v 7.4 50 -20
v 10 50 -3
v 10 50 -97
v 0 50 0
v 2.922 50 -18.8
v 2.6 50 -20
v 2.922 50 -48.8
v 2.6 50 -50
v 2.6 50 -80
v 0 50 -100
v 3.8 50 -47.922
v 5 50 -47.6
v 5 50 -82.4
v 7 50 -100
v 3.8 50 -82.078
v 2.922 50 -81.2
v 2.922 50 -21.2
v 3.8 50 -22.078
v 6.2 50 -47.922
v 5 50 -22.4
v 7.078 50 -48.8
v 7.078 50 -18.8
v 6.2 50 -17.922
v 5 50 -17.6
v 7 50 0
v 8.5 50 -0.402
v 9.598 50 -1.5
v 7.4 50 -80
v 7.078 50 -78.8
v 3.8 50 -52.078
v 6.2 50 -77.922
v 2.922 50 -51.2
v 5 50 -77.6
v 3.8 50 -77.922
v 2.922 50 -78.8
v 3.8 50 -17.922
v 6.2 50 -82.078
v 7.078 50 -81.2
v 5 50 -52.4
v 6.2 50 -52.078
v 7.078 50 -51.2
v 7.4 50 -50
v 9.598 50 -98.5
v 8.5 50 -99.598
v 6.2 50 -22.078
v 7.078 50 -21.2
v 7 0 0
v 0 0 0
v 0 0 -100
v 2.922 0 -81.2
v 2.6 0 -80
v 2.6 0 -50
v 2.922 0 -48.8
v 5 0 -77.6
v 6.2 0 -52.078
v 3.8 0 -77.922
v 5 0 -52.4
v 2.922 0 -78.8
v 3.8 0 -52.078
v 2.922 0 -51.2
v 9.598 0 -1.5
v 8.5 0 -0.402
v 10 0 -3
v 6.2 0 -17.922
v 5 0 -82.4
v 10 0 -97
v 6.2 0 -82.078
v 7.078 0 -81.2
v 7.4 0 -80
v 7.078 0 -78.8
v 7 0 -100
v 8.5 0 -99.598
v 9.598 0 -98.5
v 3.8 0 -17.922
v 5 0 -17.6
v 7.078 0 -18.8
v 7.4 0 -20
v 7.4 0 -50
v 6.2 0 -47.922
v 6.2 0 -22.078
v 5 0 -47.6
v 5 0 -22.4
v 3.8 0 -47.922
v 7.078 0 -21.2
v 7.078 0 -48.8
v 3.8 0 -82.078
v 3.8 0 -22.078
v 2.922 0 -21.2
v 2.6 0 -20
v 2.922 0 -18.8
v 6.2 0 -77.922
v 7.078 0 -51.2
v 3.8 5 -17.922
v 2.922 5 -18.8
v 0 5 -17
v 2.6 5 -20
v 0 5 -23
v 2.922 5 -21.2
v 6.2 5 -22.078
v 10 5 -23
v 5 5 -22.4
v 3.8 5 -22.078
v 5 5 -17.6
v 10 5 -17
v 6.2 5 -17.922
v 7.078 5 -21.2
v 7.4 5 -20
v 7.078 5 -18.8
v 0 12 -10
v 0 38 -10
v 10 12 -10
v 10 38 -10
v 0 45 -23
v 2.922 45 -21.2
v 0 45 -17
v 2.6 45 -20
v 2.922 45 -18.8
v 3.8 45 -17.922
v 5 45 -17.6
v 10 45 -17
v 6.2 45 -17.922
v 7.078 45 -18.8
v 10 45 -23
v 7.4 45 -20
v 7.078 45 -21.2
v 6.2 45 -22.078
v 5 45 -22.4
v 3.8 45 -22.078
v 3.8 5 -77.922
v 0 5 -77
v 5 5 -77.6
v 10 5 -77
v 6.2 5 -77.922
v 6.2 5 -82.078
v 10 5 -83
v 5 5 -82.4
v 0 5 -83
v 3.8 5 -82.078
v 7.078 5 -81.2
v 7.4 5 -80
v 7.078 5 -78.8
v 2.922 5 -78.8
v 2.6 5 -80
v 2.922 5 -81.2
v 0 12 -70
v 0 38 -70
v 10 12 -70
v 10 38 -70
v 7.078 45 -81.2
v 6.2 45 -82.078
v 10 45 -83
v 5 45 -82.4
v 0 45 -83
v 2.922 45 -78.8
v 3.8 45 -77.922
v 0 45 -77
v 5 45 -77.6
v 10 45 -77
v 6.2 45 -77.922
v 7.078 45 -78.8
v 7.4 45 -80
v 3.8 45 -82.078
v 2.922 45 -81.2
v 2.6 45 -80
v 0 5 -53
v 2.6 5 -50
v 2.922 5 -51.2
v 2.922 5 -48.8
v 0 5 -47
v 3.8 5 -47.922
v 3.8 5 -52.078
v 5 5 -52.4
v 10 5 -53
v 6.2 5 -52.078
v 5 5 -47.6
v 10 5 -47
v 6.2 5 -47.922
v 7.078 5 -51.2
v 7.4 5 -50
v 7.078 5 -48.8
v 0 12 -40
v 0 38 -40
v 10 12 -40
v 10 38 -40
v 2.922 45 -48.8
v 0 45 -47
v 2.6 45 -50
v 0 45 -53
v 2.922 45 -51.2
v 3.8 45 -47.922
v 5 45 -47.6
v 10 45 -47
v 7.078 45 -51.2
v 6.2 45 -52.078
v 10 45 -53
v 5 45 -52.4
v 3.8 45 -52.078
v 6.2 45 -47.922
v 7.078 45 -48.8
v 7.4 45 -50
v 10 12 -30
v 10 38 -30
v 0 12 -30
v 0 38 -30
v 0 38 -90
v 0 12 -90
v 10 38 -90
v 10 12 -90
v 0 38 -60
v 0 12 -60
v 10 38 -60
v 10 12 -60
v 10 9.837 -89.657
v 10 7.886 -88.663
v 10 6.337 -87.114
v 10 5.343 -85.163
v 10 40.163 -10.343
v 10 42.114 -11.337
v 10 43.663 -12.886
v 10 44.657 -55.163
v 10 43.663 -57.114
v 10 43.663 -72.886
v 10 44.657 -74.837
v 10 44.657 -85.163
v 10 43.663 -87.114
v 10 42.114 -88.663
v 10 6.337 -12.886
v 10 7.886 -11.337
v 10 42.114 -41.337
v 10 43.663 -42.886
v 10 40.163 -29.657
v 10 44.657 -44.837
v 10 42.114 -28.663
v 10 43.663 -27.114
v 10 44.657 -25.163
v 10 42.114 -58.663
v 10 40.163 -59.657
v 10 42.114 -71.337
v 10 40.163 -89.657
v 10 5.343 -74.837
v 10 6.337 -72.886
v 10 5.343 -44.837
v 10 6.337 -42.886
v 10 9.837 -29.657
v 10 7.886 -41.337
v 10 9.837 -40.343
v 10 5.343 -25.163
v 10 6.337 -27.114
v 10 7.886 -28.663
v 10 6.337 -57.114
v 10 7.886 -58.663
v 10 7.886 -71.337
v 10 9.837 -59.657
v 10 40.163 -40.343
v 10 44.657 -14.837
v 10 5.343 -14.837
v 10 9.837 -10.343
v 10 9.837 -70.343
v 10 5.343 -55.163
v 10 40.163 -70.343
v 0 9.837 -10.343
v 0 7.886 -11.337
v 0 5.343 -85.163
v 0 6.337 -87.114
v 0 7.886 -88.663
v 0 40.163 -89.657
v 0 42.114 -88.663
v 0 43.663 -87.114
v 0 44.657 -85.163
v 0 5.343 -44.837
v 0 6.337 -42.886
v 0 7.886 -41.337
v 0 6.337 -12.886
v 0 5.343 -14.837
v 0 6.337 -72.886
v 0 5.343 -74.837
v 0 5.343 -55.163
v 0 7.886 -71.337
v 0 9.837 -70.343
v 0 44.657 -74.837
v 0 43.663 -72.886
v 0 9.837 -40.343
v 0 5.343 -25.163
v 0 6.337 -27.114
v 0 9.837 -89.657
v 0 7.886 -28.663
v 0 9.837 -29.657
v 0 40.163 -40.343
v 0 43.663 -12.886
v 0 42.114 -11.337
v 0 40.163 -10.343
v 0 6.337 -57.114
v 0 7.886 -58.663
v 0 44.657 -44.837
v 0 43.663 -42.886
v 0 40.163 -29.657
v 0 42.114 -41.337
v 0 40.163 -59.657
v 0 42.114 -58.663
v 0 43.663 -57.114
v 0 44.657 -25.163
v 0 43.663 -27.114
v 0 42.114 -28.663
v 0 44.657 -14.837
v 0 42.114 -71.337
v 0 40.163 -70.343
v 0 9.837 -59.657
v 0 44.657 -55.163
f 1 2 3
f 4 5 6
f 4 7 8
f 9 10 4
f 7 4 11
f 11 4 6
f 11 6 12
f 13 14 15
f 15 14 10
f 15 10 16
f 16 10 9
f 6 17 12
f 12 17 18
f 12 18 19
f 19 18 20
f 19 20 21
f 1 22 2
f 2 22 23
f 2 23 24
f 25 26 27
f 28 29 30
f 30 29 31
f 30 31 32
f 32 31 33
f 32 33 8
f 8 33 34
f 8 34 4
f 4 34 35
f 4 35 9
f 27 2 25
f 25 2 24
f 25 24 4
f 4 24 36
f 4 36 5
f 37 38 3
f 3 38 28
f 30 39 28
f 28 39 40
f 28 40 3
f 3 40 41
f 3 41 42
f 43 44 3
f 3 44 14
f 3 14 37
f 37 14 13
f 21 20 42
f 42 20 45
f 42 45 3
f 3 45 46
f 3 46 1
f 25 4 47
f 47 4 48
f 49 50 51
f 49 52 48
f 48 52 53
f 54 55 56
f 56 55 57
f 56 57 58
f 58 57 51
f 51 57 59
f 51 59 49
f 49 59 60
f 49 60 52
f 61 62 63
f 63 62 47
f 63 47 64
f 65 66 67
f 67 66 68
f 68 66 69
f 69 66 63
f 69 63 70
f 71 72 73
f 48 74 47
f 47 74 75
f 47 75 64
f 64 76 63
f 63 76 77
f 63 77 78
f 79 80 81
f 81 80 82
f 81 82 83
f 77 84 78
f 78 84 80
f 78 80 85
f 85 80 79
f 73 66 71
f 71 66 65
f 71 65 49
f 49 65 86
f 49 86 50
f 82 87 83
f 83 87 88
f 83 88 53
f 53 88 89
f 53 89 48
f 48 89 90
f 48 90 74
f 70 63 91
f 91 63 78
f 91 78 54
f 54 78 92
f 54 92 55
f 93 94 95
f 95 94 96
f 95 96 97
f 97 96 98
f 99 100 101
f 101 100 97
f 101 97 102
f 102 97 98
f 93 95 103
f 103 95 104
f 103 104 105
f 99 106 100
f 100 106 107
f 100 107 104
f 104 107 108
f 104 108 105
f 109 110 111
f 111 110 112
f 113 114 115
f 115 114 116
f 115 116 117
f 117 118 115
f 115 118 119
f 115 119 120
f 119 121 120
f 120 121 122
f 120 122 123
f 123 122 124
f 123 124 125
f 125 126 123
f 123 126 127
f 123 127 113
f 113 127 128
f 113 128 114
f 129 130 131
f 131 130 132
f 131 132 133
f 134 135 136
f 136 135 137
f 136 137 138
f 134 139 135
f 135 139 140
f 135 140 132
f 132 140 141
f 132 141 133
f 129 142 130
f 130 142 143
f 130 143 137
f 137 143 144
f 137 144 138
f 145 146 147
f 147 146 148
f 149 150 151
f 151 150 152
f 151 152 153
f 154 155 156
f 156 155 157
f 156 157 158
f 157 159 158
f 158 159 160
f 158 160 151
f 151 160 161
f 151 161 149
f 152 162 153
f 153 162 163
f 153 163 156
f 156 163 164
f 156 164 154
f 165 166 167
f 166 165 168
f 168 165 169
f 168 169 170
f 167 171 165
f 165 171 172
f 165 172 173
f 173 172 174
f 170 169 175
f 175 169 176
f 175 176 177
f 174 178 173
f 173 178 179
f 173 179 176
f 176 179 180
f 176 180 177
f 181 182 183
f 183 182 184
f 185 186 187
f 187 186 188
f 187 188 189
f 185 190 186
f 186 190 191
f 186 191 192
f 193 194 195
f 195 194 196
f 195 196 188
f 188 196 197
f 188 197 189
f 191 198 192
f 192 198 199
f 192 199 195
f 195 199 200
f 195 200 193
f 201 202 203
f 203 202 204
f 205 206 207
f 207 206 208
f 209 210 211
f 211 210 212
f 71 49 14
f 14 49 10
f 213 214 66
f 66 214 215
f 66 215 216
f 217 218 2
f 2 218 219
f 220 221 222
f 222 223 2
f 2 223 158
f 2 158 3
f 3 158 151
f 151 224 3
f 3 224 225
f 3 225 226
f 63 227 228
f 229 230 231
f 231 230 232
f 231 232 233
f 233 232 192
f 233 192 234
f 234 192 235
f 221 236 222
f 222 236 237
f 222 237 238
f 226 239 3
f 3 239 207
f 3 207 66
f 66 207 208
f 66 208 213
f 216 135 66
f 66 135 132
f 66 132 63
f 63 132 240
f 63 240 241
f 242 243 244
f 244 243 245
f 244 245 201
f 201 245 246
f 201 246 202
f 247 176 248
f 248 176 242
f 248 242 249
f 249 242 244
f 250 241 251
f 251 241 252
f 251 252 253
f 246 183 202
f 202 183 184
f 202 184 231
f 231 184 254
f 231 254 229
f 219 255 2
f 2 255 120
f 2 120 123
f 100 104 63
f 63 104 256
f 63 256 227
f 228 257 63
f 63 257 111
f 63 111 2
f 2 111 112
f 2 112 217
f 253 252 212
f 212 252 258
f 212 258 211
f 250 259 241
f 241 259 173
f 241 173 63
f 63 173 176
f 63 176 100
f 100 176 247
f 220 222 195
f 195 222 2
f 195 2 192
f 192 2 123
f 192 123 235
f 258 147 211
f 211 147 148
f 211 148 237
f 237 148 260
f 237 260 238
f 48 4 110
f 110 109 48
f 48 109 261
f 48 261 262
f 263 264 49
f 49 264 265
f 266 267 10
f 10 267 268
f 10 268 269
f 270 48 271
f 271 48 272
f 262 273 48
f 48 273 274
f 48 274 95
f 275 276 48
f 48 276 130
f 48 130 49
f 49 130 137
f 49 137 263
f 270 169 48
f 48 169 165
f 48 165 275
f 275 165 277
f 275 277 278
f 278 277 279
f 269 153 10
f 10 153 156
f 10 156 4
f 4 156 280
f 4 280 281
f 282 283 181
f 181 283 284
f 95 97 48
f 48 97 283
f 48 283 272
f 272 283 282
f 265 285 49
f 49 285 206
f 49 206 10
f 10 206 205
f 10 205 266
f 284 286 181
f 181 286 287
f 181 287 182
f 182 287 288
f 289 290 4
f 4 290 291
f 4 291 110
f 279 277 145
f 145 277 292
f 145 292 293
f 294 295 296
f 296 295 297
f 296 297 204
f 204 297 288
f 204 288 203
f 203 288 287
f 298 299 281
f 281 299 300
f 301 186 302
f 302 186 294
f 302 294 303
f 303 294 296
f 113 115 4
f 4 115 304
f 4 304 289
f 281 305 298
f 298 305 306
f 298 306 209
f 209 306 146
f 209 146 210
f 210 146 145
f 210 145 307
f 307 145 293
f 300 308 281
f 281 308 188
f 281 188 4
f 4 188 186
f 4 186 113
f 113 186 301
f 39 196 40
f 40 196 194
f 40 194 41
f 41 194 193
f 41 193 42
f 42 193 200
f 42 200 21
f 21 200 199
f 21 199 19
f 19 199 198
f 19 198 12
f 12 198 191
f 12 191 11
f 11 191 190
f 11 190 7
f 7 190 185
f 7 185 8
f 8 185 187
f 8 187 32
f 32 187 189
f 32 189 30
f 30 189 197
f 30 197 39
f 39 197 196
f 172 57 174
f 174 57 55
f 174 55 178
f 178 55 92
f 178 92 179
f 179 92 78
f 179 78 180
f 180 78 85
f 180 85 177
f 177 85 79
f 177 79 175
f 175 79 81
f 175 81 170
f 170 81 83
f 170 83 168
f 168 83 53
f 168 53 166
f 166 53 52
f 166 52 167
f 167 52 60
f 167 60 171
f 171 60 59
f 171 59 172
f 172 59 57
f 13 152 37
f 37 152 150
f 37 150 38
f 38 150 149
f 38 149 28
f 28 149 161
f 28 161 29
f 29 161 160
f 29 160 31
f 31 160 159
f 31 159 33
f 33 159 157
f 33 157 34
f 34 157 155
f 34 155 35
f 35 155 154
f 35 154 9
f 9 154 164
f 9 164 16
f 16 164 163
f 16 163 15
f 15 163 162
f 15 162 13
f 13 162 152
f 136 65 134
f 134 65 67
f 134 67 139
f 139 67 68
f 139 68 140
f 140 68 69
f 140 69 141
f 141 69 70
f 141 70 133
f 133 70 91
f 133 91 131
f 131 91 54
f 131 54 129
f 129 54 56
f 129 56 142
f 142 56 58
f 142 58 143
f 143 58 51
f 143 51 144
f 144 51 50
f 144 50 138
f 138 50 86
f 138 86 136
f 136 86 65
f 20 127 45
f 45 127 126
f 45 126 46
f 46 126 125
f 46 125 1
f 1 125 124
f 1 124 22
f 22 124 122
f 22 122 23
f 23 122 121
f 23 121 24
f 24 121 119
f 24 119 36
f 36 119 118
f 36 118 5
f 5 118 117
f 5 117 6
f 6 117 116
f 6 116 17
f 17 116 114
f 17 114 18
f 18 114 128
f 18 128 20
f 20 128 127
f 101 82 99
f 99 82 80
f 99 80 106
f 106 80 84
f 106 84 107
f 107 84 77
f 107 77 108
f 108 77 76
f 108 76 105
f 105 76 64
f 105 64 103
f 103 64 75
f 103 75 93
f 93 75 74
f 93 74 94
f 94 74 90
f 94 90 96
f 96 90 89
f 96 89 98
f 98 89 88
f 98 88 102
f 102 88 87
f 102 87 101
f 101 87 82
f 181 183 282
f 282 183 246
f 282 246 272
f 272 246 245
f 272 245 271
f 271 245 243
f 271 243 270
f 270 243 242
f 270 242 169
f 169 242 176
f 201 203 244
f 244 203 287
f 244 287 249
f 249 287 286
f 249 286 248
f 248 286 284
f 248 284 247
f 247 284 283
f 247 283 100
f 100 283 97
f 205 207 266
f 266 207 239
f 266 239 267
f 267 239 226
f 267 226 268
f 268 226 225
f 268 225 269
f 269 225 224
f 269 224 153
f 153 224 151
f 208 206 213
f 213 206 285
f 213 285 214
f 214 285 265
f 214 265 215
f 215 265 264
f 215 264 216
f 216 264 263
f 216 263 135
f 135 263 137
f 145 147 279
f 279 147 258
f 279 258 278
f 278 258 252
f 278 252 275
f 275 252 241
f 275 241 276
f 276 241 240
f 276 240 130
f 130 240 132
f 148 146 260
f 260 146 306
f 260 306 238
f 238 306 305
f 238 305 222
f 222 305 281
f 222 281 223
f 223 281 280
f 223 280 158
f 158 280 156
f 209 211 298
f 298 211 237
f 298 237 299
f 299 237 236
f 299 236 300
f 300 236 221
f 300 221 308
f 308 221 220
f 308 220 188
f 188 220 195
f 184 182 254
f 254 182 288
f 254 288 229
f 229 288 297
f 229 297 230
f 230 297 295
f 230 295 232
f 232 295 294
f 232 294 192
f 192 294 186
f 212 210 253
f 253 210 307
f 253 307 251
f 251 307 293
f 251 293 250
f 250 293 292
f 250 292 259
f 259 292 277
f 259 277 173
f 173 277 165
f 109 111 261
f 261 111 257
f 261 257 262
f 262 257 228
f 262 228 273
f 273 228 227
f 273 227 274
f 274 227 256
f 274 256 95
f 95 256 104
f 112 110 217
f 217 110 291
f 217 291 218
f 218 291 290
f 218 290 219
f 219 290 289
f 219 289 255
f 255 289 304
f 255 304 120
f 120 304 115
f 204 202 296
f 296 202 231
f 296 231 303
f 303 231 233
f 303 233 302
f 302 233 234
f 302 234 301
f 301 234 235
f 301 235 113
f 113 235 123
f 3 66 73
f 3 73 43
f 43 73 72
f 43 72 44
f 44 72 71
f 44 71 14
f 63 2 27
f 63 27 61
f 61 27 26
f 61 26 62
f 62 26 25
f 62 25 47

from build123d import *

# Parameters (mm, degrees)
ESQUISSE1_W             = 100
ESQUISSE1_H             = 50
ESQUISSE1_W_2           = 80
ESQUISSE1_H_2           = 40
ESQUISSE1_W_3           = 10
BOSS_EXTRU_1_DEPTH      = 10
ESQUISSE2_R             = 2.4
ENL_V_MAT_EXTRU_1_DEPTH = 113.249721603
CONG_1_R                = 7
CONG_2_R                = 3


with BuildPart() as part:
    # Esquisse1 → Boss.-Extru.1 (new body)
    # profile 1 of 3: a face of its own
    with BuildSketch(Plane(origin=(0, 0, 0), x_dir=(0, 0, -1), z_dir=(1, 0, 0))):
        with Locations((50, 25)):
            Rectangle(ESQUISSE1_W, ESQUISSE1_H)
        with Locations((50, 25)):
            Rectangle(ESQUISSE1_W_2, ESQUISSE1_H_2, mode=Mode.SUBTRACT)
    # profile 2 of 3: a face of its own
    with BuildSketch(Plane(origin=(0, 0, 0), x_dir=(0, 0, -1), z_dir=(1, 0, 0))):
        with Locations((65, 25)):
            Rectangle(ESQUISSE1_W_3, ESQUISSE1_H_2)
    # profile 3 of 3: a face of its own
    with BuildSketch(Plane(origin=(0, 0, 0), x_dir=(0, 0, -1), z_dir=(1, 0, 0))):
        with Locations((35, 25)):
            Rectangle(ESQUISSE1_W_3, ESQUISSE1_H_2)
    extrude(amount=BOSS_EXTRU_1_DEPTH)

    # Esquisse2 → Enlèv. mat.-Extru.1 (cut, through all)
    with BuildSketch(Plane.XZ):
        with Locations(Location((5, -20, 0), (0, 0, 270))):
            Circle(ESQUISSE2_R)
        with Locations(Location((5, -50, 0), (0, 0, 270))):
            Circle(ESQUISSE2_R)
        with Locations(Location((5, -80, 0), (0, 0, 270))):
            Circle(ESQUISSE2_R)
    extrude(amount=-ENL_V_MAT_EXTRU_1_DEPTH, mode=Mode.SUBTRACT)

    # Congé1
    cong_1_edges = [part.edges().sort_by_distance(p)[0] for p in [
        (5, 5, -30),
        (5, 45, -30),
        (5, 45, -10),
        (5, 5, -10),
        (5, 5, -90),
        (5, 45, -90),
        (5, 45, -70),
        (5, 5, -70),
        (5, 5, -60),
        (5, 45, -60),
        (5, 45, -40),
        (5, 5, -40),
    ]]
    fillet(cong_1_edges, radius=CONG_1_R)

    # Congé2
    cong_2_edges = [part.edges().sort_by_distance(p)[0] for p in [
        (10, 25, 0),
        (10, 25, -100),
    ]]
    fillet(cong_2_edges, radius=CONG_2_R)


solid = part.part
